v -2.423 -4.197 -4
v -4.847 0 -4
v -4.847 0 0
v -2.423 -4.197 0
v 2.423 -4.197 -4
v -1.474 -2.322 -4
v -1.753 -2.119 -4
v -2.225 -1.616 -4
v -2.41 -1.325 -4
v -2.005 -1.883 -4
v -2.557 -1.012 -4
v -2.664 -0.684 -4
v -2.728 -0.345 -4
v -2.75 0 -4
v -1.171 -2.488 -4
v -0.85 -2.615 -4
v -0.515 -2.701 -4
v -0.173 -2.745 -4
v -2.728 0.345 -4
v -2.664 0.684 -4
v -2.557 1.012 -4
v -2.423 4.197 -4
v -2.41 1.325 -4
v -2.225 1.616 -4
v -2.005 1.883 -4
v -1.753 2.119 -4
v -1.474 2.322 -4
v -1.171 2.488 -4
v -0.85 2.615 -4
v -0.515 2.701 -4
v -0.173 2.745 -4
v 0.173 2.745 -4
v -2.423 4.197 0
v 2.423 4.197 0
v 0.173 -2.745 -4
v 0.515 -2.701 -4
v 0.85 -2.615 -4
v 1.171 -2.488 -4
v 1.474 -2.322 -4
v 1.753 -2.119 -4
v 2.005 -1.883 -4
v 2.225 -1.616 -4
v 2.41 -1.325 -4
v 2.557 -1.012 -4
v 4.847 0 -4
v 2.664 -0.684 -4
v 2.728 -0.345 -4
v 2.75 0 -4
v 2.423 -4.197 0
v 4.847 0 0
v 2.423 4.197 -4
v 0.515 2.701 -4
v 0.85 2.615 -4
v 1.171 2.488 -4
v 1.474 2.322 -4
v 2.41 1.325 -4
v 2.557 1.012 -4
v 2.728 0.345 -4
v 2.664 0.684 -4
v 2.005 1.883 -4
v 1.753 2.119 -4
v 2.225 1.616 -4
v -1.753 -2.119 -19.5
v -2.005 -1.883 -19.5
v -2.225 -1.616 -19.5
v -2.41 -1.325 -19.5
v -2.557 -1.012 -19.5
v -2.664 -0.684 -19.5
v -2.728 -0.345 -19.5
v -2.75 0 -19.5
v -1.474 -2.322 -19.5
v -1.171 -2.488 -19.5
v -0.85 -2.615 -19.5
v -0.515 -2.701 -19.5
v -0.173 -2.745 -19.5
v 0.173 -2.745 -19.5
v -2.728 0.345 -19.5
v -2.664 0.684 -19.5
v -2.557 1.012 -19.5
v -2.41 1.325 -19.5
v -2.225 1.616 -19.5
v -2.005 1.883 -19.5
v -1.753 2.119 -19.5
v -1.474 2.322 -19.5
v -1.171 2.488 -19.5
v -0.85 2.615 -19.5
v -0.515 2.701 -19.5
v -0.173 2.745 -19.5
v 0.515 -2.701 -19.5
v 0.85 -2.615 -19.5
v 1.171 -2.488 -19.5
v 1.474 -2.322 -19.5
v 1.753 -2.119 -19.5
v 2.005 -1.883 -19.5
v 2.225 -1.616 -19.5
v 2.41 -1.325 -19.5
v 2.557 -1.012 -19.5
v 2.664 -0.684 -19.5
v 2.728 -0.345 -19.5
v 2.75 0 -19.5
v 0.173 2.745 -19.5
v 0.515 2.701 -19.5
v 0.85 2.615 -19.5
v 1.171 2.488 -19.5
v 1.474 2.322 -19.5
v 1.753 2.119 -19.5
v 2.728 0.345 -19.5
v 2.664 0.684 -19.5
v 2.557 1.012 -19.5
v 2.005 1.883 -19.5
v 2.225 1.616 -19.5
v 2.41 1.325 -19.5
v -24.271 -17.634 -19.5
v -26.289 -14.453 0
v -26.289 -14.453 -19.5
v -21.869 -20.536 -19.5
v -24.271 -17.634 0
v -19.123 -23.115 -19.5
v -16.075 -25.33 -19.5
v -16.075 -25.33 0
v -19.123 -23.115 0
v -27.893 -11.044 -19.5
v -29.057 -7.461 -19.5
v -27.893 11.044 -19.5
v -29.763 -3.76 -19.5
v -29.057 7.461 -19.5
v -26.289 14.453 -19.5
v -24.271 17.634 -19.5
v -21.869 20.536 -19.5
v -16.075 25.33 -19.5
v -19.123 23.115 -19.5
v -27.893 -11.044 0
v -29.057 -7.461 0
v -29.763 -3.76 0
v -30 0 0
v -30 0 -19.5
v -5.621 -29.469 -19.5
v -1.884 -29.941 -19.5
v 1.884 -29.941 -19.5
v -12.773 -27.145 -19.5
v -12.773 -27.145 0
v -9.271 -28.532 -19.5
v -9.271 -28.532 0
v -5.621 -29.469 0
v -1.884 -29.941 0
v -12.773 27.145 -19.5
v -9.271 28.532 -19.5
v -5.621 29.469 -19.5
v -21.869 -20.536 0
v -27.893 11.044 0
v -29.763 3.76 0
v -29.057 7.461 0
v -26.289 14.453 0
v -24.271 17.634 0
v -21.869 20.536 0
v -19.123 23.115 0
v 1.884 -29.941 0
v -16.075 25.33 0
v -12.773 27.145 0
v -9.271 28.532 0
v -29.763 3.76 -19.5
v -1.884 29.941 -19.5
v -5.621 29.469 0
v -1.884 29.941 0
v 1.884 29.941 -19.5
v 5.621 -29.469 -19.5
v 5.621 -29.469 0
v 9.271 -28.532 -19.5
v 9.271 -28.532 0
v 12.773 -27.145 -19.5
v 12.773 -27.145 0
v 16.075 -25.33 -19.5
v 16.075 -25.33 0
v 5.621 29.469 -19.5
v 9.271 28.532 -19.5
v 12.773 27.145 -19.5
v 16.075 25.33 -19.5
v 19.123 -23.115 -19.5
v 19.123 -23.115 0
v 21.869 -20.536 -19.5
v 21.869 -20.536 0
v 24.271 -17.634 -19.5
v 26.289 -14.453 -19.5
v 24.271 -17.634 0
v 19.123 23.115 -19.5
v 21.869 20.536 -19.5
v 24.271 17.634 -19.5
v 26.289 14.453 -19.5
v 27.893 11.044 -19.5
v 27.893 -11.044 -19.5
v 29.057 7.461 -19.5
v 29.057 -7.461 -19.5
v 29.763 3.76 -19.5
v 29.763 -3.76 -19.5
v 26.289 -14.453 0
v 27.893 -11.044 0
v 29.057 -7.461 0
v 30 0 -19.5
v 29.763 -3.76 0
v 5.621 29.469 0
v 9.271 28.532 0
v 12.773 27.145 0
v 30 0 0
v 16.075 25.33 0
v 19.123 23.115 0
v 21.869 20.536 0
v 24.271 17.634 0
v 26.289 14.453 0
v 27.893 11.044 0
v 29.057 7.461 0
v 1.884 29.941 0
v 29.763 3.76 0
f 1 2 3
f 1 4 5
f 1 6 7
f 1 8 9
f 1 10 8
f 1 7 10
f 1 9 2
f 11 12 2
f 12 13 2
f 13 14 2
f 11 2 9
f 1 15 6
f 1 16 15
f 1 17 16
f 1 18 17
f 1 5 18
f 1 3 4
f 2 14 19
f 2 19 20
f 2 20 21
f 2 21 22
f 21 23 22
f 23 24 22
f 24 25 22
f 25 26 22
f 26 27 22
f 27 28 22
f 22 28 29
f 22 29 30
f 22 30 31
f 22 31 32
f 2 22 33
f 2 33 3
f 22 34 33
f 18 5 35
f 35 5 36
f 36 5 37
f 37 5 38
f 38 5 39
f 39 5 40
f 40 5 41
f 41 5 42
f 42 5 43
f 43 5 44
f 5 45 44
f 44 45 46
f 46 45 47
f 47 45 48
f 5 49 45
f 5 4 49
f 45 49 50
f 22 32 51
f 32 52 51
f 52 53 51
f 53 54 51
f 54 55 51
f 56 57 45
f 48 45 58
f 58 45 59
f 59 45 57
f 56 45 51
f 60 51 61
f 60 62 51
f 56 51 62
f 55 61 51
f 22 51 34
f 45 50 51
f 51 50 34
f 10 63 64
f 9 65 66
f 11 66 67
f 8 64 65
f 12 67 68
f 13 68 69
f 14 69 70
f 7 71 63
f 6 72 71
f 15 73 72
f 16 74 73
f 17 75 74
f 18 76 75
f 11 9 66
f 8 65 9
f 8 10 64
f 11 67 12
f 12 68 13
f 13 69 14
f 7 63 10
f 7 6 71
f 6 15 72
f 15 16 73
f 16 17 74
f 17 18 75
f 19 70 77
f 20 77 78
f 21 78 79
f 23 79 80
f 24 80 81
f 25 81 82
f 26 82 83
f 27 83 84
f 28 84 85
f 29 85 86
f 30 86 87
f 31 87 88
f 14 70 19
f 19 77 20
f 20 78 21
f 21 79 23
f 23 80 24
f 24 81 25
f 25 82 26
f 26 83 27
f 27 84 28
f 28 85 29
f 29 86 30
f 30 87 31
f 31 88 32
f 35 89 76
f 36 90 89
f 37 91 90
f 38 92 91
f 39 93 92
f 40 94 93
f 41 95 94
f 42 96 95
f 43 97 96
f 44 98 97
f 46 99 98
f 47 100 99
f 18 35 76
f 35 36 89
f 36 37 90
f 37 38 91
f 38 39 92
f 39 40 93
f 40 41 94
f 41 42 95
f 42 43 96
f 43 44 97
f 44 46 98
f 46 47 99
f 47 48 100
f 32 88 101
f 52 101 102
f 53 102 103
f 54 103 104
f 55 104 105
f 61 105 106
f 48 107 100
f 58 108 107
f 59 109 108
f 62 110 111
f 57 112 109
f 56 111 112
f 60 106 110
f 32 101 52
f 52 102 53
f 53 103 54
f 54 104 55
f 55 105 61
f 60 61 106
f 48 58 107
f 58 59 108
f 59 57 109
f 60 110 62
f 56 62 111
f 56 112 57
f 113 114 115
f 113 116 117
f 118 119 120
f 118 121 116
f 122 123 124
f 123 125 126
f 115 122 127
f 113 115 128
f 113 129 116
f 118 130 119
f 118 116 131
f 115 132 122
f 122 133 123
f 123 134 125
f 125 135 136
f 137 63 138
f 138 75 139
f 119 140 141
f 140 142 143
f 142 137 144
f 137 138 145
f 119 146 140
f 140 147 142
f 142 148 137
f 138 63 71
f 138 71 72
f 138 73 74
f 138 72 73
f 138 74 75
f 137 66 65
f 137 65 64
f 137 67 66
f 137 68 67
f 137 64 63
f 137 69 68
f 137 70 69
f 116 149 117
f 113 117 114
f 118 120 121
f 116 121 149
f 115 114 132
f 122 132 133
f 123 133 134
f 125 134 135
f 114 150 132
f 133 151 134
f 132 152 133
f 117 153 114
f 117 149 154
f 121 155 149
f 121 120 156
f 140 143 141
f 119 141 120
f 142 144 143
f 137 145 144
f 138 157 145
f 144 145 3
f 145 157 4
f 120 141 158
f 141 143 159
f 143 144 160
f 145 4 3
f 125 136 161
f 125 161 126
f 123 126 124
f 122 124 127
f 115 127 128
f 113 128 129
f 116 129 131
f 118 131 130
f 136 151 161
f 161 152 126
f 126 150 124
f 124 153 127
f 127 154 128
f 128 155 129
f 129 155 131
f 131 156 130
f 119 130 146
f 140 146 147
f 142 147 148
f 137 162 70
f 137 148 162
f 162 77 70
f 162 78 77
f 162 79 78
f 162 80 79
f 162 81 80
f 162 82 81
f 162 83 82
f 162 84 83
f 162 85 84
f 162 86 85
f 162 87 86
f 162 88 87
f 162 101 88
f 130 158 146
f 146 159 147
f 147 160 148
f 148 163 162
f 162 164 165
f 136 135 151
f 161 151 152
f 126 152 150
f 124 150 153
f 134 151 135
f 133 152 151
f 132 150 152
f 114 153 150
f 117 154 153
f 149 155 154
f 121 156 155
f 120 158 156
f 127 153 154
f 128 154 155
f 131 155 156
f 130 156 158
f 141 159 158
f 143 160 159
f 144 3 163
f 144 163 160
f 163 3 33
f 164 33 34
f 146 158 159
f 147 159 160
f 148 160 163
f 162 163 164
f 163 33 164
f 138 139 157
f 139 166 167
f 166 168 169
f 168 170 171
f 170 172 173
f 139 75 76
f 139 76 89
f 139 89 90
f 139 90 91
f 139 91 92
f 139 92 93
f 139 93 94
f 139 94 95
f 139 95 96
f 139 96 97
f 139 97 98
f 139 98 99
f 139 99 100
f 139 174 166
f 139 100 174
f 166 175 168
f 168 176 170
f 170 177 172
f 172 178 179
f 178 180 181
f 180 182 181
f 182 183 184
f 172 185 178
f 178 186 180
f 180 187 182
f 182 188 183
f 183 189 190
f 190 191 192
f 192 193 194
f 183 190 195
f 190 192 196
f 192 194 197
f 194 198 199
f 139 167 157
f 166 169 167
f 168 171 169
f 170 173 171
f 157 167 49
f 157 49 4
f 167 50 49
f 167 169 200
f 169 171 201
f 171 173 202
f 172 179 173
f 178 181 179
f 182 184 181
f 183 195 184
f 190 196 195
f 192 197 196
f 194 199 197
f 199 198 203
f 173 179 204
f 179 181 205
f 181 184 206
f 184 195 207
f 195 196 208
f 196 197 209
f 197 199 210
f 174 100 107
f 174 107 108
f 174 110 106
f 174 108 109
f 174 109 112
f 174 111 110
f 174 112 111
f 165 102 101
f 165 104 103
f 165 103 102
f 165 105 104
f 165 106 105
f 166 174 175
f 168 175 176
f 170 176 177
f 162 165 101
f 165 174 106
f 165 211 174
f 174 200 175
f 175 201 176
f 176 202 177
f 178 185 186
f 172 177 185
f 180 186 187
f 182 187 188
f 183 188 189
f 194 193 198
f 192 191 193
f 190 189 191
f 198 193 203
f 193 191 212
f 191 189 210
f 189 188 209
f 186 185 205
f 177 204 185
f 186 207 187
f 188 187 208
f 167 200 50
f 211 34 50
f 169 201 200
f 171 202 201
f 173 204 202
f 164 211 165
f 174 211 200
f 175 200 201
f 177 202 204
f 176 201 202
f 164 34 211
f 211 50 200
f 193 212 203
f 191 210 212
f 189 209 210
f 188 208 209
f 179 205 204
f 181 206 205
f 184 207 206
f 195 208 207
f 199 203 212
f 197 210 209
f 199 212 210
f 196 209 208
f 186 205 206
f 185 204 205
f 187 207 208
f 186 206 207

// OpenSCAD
$fn = 50;

difference() {
	union() {
		translate(v = [0, 0, -19.5]) {
			cylinder(h = 19.5, r = 30.0);
		}
	}
	union() {
		translate(v = [0, 0, 0]) {
			rotate(a = [0, 0, 0]) {
				difference() {
					union() {
						translate(v = [0, 0, -4]) {
							linear_extrude(height = 4) {
								polygon(points = [[4.8468, 0.0], [2.4234000000000004, 4.197451927062417], [-2.423399999999999, 4.197451927062417], [-4.8468, 5.935618106107392e-16], [-2.423400000000002, -4.197451927062416], [2.423399999999997, -4.197451927062419]]);
							}
						}
					}
					union();
				}
			}
		}
		#translate(v = [0, 0, -100.0]) {
			cylinder(h = 200, r = 2.75);
		}
	}
}
